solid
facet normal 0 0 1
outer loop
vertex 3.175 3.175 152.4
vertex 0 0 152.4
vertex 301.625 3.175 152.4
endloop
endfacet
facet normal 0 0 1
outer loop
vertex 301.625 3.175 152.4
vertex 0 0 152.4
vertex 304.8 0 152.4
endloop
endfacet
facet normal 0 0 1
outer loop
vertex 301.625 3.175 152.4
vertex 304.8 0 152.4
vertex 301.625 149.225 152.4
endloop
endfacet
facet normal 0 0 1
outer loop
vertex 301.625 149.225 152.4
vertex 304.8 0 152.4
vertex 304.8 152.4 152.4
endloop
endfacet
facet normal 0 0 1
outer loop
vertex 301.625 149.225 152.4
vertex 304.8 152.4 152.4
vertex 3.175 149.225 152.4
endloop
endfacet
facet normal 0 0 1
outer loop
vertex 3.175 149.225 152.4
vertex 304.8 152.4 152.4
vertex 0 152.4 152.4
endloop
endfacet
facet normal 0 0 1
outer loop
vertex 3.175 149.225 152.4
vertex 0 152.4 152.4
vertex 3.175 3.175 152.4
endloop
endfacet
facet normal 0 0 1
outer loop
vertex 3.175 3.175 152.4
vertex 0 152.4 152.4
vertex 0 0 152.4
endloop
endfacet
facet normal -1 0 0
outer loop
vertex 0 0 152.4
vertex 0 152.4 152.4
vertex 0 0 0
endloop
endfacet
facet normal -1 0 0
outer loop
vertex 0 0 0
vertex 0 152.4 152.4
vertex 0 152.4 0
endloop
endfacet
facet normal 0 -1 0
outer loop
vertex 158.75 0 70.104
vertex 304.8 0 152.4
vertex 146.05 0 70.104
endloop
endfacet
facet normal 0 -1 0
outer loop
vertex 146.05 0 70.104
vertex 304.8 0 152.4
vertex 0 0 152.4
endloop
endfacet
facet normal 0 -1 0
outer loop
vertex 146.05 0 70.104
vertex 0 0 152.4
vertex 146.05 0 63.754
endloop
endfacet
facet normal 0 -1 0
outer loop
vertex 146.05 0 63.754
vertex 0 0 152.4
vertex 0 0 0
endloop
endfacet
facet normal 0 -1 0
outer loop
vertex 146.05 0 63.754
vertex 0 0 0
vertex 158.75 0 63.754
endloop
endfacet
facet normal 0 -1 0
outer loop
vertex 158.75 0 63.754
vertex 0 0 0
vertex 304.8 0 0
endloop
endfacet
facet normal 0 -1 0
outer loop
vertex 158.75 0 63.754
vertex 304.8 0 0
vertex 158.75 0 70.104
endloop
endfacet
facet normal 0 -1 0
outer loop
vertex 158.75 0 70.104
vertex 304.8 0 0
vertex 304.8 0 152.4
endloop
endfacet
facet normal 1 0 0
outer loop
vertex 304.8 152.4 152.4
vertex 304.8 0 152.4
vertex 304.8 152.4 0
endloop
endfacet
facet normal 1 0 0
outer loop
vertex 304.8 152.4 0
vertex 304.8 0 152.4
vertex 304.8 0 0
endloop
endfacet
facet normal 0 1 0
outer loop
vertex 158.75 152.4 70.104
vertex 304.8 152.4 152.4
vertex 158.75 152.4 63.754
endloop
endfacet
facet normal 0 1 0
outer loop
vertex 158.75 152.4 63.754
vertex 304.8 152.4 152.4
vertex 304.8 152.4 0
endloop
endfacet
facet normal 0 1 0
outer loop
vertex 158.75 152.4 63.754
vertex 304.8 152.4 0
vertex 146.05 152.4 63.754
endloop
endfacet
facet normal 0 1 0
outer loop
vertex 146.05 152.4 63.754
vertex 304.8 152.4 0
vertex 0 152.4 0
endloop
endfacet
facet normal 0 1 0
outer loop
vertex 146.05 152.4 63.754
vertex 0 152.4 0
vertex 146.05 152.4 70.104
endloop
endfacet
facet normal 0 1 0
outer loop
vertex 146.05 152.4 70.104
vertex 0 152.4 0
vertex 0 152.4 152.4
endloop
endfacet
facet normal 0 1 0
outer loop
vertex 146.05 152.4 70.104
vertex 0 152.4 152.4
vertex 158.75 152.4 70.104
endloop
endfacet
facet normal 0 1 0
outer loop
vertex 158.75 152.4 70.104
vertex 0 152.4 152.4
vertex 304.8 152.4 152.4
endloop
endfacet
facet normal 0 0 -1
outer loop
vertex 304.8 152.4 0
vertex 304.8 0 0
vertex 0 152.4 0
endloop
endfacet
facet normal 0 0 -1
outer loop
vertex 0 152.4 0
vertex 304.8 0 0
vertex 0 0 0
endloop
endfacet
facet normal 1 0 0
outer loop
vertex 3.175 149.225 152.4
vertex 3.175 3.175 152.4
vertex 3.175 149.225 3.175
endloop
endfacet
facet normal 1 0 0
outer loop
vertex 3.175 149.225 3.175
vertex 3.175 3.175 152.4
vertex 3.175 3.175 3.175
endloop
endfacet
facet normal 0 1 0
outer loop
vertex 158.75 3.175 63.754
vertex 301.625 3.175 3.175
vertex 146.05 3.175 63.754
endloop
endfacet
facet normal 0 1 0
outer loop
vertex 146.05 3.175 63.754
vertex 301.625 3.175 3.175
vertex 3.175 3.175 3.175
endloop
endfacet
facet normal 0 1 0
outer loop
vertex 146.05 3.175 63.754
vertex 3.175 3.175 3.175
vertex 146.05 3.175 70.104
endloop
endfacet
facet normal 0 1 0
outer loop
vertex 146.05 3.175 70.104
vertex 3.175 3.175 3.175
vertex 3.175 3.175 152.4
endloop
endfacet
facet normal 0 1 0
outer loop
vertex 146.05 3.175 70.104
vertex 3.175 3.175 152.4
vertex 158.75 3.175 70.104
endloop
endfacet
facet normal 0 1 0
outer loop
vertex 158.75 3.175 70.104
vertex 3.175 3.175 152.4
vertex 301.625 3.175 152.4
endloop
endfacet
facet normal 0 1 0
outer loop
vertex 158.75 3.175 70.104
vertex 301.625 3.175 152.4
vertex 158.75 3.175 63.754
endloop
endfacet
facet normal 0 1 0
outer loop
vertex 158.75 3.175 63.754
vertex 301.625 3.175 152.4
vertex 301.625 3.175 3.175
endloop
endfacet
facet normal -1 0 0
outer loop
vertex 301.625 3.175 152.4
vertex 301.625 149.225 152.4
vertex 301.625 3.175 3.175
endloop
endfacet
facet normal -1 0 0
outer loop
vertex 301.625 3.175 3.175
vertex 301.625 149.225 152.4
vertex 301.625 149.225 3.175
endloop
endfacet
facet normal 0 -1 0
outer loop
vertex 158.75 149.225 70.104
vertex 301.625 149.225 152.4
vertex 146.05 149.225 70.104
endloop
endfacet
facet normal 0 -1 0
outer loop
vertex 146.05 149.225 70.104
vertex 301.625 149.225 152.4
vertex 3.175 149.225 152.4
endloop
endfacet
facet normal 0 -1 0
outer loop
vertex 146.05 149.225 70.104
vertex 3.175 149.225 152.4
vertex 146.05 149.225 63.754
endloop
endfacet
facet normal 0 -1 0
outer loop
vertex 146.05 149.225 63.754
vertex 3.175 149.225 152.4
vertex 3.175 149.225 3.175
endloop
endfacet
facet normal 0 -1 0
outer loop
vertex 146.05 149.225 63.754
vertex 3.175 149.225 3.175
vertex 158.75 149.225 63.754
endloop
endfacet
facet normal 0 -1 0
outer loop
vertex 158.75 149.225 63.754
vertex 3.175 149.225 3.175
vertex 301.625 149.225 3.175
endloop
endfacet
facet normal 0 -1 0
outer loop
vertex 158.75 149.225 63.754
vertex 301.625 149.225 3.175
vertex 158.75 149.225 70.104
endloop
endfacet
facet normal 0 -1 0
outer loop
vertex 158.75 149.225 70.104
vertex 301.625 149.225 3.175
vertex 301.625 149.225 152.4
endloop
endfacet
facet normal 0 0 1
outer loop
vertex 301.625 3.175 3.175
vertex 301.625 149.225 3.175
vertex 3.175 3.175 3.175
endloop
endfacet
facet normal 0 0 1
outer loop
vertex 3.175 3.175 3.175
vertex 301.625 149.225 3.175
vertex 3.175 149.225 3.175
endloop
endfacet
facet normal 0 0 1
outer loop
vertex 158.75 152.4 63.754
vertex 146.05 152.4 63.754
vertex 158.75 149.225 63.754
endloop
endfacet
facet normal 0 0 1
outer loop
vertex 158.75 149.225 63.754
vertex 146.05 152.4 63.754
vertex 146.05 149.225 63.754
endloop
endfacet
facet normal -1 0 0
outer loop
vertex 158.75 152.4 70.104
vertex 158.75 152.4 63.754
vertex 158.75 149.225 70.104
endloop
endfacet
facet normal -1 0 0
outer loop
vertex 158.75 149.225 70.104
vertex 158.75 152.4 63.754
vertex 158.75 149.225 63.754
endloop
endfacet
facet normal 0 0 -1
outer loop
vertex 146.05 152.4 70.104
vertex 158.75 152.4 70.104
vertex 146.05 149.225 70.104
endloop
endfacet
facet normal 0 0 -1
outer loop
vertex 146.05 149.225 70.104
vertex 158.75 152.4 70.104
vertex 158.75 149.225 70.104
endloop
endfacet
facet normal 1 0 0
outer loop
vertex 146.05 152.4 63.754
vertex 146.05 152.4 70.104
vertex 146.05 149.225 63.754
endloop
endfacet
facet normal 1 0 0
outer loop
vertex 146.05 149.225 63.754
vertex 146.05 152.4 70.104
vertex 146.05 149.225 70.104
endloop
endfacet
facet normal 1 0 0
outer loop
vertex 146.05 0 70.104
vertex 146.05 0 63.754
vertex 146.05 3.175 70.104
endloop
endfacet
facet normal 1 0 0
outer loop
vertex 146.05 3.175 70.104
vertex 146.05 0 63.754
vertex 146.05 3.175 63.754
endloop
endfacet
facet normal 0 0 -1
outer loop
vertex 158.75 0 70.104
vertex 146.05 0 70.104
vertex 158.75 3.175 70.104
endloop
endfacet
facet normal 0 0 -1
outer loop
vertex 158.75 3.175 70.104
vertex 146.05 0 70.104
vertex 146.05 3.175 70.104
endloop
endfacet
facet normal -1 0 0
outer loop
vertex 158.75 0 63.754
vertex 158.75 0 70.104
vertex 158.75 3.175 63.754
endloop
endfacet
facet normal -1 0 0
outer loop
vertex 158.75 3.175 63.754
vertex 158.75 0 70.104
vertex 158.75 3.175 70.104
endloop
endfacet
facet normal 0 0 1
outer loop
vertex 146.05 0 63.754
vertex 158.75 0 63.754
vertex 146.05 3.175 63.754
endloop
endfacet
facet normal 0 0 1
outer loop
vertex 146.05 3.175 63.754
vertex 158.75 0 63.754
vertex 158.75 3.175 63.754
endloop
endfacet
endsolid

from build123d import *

# Parameters (mm, degrees)
SKETCH2_W           = 304.8
SKETCH2_H           = 152.4
BOSS_EXTRUDE1_DEPTH = 152.4
SHELL1_T            = -3.175
SKETCH3_W           = 12.7
SKETCH3_H           = 6.35
CUT_EXTRUDE1_DEPTH  = 374.3022368


with BuildPart() as part:
    # Sketch2 → Boss-Extrude1 (new body)
    with BuildSketch(Plane.XY):
        with Locations((152.4, 76.2)):
            Rectangle(SKETCH2_W, SKETCH2_H)
    extrude(amount=BOSS_EXTRUDE1_DEPTH)

    # Shell1
    shell1_openings = [part.faces().sort_by_distance(p)[0] for p in [
        (152.4, 76.2, 152.4),
    ]]
    offset(amount=SHELL1_T, openings=shell1_openings, kind=Kind.INTERSECTION)

    # Sketch3 → Cut-Extrude1 (cut, through all)
    with BuildSketch(Plane.XZ):
        with Locations((152.4, 66.929)):
            Rectangle(SKETCH3_W, SKETCH3_H)
    extrude(amount=-CUT_EXTRUDE1_DEPTH, mode=Mode.SUBTRACT)


solid = part.part
